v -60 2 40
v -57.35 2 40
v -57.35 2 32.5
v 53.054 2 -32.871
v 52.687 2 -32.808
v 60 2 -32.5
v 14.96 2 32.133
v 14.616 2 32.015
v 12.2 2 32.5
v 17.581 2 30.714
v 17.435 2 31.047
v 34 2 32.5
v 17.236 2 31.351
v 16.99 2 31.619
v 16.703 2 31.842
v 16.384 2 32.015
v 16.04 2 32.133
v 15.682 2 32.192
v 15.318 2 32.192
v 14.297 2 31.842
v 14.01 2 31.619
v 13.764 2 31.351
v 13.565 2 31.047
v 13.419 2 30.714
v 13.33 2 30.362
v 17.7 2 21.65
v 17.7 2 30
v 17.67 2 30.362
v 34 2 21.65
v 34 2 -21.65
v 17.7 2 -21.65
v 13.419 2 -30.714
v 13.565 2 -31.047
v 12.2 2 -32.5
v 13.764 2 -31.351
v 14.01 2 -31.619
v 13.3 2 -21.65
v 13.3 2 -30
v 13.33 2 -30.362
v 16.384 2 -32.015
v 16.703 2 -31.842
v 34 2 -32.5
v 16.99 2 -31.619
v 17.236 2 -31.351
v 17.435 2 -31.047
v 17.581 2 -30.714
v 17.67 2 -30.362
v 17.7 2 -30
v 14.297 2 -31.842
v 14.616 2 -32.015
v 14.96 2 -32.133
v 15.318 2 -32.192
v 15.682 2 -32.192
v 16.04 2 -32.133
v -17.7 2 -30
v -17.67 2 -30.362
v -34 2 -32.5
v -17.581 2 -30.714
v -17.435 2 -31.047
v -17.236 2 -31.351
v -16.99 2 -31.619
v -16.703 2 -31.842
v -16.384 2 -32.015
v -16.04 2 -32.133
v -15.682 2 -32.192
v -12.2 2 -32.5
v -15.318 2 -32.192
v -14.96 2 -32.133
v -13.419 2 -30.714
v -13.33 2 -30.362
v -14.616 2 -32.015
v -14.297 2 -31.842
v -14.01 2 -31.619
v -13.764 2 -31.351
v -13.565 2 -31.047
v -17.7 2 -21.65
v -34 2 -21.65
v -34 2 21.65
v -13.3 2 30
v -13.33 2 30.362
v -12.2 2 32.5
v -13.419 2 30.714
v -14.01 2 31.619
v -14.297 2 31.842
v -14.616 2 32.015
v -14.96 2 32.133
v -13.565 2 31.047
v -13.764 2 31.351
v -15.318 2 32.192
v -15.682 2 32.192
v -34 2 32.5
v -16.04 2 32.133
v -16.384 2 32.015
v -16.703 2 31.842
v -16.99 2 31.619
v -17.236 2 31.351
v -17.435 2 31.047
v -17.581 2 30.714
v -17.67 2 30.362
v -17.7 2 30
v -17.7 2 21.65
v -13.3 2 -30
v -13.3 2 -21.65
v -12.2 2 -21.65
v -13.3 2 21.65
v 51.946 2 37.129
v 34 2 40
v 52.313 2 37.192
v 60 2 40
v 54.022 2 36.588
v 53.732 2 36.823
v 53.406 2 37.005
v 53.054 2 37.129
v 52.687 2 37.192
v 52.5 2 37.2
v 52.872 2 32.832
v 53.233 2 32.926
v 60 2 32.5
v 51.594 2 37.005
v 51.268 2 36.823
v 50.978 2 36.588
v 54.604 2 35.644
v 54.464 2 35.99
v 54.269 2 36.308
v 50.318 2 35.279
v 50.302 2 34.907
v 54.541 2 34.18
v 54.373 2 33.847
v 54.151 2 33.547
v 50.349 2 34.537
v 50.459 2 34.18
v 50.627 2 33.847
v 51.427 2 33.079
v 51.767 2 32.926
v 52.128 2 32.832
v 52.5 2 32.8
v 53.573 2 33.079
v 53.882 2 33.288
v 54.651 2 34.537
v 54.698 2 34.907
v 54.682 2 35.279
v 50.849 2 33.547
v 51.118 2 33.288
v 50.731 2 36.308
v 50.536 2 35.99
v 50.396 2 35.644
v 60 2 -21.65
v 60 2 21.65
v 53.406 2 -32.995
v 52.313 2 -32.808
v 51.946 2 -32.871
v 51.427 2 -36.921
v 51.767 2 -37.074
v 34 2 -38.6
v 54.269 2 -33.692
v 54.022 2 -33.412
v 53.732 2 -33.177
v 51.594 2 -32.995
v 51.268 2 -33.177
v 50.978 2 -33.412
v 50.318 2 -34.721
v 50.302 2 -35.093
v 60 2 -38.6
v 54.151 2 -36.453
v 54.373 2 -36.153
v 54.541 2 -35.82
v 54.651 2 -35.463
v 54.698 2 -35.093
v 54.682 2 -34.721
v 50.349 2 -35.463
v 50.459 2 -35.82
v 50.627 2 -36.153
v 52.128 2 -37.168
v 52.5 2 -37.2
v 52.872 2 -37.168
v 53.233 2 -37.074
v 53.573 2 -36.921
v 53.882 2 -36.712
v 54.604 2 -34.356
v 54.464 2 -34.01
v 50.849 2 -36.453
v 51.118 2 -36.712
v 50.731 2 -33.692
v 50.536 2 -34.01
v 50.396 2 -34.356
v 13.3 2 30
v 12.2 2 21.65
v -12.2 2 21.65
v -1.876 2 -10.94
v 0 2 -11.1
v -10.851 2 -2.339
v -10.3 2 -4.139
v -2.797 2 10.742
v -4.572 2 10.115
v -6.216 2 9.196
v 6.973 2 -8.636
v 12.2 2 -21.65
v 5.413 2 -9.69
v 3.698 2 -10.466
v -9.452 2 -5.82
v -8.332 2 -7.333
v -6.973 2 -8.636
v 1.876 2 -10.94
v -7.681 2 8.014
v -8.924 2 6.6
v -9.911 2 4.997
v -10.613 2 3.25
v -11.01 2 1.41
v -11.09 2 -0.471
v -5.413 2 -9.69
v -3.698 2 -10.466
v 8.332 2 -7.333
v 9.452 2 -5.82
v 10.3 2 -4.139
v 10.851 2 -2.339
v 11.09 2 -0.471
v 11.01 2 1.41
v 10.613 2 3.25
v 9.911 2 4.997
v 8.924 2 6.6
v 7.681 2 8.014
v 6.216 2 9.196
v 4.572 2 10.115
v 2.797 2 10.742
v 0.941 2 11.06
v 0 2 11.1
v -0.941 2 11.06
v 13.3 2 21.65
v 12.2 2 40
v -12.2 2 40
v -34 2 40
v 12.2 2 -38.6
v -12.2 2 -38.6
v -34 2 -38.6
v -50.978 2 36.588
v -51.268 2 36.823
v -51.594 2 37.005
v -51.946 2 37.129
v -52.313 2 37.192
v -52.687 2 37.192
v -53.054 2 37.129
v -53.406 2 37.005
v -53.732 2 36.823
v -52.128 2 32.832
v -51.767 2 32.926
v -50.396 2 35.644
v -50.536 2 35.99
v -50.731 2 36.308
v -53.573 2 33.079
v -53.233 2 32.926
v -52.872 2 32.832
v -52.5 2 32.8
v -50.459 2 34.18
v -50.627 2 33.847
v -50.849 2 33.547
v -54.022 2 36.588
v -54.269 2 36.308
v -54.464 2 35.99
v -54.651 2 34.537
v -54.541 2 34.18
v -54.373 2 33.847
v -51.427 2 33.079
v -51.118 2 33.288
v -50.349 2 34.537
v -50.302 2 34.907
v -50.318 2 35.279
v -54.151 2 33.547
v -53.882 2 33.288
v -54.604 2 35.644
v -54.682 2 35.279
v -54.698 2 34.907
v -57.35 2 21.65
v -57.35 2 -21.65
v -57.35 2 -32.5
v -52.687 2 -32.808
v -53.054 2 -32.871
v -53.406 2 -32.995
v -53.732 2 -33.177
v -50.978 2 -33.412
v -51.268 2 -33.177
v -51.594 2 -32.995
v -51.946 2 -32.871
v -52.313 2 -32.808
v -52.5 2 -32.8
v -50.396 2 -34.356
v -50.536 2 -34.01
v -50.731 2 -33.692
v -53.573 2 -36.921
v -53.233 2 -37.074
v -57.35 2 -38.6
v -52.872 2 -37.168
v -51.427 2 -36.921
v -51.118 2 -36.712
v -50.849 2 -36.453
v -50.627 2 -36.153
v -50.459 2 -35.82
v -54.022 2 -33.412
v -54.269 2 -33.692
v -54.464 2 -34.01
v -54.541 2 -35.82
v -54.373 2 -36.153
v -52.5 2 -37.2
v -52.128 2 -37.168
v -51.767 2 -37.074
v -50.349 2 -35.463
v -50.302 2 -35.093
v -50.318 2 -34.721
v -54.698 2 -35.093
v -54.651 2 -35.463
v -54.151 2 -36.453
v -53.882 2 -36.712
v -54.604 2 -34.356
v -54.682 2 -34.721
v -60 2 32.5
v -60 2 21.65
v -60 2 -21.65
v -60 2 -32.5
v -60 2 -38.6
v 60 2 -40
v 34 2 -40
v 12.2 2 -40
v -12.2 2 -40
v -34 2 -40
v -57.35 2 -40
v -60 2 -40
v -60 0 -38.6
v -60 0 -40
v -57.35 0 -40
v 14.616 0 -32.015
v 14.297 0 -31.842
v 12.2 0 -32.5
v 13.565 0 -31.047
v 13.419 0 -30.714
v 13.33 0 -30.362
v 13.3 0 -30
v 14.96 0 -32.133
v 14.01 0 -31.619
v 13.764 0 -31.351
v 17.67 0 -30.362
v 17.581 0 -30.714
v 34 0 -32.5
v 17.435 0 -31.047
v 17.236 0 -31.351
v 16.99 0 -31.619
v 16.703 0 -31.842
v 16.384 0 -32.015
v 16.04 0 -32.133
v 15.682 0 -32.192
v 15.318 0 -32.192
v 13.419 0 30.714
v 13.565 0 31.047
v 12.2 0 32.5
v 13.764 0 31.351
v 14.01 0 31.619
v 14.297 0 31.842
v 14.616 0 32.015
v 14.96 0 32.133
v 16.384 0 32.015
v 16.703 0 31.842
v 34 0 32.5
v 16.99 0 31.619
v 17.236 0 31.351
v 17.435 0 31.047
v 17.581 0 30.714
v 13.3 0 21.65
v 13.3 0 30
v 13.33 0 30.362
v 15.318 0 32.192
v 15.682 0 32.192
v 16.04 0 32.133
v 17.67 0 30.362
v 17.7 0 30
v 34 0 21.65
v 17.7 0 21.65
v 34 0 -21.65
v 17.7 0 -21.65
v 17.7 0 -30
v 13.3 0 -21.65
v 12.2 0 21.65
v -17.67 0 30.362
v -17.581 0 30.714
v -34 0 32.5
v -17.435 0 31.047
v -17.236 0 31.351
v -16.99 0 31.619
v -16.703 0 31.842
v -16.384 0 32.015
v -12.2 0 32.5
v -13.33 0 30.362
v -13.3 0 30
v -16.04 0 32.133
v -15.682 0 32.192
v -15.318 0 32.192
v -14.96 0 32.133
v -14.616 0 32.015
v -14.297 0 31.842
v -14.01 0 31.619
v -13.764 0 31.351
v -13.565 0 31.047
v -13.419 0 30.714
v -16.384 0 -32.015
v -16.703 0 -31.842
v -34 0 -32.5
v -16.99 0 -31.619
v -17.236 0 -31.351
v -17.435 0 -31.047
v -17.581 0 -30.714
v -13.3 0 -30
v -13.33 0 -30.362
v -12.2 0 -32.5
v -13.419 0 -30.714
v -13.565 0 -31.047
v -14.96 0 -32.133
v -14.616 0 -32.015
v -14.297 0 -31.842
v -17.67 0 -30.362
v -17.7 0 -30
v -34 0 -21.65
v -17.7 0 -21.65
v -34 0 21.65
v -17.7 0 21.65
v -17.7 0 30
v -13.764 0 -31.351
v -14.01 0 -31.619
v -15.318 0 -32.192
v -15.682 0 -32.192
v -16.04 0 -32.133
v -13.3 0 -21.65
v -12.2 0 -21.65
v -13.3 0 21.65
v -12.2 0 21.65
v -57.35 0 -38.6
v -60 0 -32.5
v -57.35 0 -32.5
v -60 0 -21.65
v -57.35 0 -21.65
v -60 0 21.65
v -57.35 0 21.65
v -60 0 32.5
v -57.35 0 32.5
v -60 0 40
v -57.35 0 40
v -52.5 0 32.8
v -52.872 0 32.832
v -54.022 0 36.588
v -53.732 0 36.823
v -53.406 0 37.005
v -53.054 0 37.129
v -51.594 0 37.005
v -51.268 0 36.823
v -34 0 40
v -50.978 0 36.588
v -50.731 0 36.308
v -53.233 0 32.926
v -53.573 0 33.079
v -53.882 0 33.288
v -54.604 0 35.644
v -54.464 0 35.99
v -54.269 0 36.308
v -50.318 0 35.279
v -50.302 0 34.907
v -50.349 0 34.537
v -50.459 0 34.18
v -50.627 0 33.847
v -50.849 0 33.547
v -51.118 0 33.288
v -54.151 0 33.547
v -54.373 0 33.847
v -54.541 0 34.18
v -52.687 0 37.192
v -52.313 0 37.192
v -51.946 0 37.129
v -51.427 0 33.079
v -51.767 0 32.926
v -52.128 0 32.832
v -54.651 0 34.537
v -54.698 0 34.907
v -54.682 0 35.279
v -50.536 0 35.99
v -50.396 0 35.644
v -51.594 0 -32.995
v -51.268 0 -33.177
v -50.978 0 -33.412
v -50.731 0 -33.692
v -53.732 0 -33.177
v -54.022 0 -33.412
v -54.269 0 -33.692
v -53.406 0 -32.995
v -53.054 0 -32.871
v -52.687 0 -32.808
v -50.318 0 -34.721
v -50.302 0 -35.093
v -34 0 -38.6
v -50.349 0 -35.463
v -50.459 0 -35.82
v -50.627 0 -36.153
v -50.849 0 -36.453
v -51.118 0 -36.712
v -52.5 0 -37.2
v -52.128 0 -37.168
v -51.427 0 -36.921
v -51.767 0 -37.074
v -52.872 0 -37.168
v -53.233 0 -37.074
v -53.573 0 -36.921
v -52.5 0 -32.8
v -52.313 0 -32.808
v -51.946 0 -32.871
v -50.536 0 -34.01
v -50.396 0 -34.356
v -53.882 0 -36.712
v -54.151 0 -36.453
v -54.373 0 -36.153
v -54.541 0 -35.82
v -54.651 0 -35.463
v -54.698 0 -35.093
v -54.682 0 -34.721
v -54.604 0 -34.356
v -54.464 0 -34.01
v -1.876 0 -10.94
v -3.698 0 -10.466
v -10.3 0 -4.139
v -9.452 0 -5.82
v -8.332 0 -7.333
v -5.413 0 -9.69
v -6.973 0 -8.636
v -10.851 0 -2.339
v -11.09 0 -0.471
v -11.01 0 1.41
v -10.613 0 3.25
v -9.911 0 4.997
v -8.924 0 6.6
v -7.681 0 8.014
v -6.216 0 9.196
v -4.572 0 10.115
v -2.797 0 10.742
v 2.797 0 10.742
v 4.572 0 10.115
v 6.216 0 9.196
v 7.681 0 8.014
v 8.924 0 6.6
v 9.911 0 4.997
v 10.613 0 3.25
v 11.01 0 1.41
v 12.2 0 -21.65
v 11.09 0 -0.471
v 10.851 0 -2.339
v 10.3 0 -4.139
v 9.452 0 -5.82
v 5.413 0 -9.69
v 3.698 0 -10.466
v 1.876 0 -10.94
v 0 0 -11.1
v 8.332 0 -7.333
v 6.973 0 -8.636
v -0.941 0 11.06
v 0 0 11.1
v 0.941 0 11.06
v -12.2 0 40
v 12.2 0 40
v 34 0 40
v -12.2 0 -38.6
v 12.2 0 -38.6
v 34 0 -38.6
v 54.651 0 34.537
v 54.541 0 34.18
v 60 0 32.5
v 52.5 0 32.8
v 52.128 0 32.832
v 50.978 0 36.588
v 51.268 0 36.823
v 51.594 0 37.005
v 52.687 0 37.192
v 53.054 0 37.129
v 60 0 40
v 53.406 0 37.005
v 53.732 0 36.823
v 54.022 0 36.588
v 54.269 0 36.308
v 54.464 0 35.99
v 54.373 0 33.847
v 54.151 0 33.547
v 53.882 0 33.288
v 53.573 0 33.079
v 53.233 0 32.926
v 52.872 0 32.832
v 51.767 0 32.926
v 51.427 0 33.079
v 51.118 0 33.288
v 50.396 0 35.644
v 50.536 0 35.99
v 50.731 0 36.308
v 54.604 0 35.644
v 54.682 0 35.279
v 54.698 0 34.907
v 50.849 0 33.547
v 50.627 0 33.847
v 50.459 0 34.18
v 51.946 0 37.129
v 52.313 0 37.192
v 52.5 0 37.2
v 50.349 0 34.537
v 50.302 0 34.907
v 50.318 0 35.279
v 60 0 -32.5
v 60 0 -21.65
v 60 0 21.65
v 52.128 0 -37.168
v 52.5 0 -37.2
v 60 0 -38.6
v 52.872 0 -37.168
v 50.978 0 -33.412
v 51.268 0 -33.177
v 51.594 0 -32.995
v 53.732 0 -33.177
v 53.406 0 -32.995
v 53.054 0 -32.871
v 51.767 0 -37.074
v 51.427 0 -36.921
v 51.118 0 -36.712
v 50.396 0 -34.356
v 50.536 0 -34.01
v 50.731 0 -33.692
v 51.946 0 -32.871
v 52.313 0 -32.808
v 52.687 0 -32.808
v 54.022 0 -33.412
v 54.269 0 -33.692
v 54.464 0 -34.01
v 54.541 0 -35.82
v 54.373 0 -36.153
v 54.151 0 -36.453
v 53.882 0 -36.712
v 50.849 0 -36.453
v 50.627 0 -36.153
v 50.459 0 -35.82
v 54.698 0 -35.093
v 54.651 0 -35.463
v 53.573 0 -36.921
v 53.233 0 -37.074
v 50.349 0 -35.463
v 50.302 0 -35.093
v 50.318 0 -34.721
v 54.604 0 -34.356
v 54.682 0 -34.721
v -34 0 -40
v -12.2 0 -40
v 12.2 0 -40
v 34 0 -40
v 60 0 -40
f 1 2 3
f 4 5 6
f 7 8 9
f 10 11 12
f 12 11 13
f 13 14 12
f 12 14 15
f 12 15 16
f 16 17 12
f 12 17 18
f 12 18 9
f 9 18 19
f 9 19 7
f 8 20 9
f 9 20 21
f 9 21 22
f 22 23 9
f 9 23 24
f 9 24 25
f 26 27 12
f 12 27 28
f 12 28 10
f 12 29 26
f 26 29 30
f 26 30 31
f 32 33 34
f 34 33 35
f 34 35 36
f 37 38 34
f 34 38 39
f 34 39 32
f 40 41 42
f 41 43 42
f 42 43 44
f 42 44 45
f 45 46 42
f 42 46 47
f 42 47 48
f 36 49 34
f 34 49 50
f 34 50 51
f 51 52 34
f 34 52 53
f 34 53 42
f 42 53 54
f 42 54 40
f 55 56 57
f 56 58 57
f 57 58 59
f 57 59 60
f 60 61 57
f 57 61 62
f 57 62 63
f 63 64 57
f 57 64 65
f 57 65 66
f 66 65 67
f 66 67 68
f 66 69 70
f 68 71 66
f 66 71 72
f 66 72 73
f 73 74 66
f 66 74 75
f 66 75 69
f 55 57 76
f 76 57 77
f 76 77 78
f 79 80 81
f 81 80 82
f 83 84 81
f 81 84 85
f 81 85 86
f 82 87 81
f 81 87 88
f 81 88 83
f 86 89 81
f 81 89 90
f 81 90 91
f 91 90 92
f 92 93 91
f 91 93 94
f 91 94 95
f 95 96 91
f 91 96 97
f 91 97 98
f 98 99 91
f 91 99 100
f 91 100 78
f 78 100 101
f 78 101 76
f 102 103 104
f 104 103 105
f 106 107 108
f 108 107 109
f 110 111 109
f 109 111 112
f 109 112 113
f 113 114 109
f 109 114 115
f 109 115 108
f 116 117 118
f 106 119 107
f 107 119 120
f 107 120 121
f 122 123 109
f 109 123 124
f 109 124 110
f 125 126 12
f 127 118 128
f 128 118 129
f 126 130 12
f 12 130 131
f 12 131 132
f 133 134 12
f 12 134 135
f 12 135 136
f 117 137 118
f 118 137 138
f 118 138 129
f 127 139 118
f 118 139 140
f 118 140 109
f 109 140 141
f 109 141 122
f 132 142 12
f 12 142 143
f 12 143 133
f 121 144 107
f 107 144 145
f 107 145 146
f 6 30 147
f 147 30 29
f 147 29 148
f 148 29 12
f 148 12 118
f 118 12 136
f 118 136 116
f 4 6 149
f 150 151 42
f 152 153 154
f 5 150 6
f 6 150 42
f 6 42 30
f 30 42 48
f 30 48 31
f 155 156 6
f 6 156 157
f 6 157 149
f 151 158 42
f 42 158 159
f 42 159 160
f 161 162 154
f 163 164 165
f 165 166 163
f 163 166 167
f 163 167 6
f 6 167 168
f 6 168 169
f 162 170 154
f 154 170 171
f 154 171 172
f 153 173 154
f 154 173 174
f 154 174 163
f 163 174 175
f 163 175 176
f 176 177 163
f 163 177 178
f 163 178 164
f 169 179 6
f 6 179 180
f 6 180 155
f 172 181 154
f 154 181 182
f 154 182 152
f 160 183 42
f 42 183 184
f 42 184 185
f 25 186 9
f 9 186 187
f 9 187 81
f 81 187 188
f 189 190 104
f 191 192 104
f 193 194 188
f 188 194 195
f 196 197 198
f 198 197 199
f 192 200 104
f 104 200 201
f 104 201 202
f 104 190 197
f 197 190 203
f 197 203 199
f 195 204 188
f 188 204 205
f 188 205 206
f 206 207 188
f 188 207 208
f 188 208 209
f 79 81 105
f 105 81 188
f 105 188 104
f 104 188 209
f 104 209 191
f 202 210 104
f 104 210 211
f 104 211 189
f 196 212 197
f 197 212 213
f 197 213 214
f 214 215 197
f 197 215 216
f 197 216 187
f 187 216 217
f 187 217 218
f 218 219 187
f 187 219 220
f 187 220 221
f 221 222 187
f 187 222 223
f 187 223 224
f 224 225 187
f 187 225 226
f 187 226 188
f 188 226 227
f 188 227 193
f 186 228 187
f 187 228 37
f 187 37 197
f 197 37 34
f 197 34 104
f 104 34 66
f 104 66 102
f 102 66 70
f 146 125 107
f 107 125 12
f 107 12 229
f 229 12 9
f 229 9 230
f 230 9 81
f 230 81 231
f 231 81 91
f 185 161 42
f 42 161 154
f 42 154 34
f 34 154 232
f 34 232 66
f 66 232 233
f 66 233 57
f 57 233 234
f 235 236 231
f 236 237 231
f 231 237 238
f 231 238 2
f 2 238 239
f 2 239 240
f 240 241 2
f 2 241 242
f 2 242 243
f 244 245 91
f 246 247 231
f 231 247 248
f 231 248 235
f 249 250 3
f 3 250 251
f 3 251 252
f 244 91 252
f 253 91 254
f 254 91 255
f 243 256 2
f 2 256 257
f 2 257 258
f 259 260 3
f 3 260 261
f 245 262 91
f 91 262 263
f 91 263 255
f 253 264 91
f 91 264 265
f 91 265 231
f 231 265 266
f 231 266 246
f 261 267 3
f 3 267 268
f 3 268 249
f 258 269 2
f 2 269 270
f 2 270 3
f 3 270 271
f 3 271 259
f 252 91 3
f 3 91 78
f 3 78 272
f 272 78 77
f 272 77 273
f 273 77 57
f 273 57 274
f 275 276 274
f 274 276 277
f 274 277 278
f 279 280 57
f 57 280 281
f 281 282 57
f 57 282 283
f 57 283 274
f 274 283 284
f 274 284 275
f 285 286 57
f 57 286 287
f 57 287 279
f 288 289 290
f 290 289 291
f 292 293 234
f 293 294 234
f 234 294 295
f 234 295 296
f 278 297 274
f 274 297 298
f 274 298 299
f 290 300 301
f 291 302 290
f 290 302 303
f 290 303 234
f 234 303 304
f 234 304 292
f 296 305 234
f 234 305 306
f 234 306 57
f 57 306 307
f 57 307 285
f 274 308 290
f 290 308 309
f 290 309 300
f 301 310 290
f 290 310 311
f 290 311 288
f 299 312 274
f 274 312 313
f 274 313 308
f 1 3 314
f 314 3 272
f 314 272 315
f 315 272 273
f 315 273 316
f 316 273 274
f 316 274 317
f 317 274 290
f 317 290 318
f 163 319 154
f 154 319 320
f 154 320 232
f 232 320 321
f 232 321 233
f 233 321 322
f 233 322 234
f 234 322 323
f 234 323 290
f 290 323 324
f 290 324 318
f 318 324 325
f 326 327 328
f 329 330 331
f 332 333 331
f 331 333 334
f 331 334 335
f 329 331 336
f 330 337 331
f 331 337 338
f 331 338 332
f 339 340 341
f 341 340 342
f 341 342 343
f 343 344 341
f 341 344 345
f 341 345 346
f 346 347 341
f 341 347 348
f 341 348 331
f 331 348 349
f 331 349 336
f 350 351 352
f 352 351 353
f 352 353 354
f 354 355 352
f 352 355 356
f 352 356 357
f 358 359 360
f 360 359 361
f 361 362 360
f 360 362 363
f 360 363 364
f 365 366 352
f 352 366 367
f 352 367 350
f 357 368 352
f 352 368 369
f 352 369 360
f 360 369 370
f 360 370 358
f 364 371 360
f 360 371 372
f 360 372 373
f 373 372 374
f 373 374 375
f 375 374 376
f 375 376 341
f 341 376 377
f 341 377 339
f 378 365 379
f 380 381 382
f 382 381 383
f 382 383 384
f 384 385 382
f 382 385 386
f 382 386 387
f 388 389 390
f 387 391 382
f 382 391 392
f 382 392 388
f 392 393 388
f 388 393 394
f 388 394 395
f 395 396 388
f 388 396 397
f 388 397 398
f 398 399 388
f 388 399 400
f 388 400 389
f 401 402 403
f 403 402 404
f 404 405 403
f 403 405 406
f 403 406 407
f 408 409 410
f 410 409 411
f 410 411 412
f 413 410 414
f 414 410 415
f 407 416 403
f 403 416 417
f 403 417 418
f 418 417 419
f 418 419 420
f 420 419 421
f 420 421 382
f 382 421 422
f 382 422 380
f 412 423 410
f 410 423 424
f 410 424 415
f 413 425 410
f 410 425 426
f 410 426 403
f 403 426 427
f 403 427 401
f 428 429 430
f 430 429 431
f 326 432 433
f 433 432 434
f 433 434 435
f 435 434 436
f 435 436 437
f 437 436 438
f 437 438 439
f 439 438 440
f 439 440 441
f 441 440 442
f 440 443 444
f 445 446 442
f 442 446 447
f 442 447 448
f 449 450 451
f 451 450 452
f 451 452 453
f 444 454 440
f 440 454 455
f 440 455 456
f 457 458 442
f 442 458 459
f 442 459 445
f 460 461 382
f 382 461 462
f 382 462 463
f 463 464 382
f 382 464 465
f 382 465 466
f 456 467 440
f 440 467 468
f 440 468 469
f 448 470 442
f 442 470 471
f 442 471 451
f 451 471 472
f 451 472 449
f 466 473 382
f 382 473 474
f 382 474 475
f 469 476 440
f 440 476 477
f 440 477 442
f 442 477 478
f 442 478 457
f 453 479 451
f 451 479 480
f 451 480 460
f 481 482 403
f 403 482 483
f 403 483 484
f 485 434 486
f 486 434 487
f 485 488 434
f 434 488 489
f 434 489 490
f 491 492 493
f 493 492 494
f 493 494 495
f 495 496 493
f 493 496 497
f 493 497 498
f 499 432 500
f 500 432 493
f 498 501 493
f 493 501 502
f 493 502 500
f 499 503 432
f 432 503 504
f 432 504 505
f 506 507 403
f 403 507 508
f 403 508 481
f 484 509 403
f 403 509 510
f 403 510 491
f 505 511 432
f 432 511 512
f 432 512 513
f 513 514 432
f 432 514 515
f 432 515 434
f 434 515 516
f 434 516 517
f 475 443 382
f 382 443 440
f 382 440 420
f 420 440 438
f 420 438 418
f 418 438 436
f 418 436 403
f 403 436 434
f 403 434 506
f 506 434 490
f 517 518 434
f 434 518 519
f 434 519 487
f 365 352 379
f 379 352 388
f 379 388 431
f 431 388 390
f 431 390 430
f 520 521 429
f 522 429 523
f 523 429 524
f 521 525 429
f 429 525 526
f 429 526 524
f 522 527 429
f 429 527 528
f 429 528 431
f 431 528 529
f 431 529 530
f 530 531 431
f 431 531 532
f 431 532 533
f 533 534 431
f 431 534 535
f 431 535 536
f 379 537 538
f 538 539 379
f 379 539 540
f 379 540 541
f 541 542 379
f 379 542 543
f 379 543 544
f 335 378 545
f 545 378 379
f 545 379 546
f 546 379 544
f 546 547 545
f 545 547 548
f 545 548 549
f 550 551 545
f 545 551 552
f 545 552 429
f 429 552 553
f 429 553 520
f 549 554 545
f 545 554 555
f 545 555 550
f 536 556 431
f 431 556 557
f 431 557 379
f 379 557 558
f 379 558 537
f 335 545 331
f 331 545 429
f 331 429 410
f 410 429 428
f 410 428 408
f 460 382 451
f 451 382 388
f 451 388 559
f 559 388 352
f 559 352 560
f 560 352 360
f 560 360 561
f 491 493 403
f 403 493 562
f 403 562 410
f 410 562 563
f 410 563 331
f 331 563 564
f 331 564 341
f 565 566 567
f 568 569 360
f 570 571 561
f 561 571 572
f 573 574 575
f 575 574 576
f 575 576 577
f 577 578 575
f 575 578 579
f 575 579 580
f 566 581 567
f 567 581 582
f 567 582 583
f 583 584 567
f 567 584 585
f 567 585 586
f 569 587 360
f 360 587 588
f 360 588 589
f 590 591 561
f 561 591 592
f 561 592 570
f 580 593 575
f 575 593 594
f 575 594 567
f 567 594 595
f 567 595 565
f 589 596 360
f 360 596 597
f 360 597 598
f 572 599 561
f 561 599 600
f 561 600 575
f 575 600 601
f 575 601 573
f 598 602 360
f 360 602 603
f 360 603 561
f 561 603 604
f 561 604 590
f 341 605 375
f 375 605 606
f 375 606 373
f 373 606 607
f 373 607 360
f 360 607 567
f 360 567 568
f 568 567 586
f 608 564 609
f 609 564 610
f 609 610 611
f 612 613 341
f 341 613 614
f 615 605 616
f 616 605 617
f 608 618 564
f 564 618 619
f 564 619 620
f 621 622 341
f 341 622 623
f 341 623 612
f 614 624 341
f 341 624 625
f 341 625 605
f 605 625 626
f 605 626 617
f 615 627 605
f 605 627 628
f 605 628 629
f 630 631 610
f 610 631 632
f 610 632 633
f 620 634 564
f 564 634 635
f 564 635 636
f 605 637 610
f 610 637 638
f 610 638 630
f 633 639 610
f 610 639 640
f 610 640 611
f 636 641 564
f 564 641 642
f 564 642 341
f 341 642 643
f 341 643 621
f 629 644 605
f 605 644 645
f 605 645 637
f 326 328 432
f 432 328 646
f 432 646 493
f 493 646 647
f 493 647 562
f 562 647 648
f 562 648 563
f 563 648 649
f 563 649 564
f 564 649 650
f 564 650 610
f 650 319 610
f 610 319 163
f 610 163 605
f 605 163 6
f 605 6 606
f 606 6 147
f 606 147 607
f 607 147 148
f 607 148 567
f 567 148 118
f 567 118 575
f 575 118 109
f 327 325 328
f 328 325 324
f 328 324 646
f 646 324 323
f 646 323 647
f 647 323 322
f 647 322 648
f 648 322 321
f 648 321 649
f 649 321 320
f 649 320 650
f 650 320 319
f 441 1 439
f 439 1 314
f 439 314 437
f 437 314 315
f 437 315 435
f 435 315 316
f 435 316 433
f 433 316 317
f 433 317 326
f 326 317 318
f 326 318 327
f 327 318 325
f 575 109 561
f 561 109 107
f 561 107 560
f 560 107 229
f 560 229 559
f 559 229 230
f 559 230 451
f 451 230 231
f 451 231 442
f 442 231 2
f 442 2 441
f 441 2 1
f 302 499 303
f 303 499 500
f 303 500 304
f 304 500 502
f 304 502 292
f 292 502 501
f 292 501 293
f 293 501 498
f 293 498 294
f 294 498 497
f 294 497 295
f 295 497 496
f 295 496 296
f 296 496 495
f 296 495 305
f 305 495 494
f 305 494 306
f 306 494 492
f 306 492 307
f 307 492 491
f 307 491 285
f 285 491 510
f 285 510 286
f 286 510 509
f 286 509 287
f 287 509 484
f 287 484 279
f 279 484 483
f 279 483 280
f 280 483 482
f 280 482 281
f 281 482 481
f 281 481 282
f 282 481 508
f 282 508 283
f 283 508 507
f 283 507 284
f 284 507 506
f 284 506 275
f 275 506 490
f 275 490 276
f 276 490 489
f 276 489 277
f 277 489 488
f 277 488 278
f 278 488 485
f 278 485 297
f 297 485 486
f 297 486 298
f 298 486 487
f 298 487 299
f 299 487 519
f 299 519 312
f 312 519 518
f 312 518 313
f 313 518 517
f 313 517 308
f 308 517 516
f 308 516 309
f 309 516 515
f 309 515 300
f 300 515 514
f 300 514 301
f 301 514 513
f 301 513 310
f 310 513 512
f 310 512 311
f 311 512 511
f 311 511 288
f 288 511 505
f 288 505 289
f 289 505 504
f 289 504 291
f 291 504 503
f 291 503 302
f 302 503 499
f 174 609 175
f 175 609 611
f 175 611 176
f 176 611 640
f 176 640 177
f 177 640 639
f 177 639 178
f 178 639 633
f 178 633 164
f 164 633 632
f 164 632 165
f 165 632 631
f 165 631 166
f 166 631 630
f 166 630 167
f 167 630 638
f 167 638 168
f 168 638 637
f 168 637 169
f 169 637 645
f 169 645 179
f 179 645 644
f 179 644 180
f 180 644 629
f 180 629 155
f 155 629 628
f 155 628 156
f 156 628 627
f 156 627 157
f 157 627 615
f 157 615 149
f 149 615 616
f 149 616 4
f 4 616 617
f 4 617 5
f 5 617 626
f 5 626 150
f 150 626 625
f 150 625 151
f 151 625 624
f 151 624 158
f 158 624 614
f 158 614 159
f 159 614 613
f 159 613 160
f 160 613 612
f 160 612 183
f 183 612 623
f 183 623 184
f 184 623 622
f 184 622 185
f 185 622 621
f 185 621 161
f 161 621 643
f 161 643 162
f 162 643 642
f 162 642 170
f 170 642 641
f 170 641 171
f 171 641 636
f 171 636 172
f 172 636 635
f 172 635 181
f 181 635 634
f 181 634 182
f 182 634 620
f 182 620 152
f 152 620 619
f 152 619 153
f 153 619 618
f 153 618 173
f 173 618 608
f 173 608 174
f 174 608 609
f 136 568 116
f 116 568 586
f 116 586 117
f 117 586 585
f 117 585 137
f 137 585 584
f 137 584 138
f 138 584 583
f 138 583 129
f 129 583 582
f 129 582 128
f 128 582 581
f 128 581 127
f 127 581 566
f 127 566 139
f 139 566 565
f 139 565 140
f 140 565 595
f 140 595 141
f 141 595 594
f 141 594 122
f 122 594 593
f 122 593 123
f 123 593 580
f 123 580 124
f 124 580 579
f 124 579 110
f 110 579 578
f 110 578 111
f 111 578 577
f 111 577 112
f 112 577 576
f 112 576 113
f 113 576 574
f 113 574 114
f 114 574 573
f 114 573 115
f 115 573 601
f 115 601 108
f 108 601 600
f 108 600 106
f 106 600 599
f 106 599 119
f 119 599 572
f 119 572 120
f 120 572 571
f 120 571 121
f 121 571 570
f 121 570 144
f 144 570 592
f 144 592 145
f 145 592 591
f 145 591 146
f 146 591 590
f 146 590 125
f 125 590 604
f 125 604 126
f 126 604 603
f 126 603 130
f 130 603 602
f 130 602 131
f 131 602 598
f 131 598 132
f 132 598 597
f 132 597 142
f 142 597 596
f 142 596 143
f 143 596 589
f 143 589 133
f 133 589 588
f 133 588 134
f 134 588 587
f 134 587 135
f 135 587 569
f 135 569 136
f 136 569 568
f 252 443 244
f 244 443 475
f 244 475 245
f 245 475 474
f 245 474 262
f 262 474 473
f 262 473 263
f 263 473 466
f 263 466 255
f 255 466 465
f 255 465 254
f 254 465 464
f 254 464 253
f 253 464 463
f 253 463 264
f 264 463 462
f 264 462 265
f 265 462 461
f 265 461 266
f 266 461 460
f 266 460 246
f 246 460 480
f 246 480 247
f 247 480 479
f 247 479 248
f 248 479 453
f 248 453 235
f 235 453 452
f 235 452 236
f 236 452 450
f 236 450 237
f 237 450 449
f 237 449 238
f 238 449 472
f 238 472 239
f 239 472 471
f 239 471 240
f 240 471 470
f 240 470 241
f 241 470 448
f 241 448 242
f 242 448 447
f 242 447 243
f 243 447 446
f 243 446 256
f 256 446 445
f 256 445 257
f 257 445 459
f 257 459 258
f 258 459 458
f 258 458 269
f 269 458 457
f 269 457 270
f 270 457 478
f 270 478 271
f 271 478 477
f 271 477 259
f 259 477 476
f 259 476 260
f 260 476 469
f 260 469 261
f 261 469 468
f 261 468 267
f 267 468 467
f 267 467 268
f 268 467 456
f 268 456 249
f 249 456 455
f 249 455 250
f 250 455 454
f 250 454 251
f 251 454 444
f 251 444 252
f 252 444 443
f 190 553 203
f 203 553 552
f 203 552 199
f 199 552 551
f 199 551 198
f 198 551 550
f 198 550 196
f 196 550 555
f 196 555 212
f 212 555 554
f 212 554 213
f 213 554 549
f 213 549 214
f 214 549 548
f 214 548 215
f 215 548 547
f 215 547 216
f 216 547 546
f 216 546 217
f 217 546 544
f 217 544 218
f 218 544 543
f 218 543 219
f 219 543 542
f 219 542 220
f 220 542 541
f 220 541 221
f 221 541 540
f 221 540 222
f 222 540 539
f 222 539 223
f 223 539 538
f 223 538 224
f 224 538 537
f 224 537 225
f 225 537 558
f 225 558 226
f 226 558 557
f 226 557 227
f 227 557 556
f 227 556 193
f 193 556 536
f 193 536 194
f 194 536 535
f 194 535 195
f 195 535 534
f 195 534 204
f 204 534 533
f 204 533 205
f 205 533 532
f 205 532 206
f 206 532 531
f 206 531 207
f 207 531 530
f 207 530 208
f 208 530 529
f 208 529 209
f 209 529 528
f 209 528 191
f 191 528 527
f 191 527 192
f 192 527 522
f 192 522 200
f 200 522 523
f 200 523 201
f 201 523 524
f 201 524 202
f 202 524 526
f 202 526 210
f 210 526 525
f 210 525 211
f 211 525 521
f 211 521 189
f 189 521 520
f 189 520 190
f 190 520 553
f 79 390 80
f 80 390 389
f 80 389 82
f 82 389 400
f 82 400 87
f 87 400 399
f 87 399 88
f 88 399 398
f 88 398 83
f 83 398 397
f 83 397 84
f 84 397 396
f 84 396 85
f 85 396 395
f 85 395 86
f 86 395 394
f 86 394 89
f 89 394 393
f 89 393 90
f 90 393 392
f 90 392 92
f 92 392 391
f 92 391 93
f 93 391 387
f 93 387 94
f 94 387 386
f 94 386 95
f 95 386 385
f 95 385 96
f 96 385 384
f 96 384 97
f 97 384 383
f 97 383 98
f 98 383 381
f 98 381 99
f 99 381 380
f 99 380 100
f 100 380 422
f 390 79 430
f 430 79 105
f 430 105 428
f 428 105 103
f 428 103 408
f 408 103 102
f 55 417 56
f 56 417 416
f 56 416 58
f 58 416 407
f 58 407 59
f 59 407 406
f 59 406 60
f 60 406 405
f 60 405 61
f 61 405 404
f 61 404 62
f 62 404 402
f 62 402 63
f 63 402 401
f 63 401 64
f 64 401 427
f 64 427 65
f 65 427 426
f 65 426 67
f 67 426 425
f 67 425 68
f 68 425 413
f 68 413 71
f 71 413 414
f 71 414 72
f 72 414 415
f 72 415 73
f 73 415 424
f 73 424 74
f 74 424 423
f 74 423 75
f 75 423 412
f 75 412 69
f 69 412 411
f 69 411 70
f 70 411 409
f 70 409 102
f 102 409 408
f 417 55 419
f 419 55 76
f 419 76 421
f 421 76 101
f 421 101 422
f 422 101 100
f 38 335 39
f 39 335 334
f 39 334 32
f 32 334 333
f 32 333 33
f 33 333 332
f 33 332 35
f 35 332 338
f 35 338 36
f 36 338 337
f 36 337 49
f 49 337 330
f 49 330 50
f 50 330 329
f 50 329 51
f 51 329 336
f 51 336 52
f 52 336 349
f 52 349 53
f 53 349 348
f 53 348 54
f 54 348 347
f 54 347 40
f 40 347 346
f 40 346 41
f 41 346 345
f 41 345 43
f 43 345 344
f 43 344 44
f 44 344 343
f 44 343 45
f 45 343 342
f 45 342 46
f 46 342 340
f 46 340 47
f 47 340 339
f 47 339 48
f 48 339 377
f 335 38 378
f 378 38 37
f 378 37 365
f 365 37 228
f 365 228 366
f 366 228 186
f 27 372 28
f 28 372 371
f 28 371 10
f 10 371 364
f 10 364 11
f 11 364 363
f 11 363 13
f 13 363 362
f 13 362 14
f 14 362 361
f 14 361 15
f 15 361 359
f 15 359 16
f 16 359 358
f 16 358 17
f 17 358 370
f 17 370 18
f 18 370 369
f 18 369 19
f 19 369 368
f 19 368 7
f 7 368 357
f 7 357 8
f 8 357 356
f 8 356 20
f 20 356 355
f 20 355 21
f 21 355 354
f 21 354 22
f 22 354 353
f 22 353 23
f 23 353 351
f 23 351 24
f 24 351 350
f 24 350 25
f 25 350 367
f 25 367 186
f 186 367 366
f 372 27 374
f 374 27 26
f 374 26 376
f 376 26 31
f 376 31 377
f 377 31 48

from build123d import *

# Parameters (mm, degrees)
SKETCH1_W           = 120
SKETCH1_H           = 80
SKETCH1_R           = 2.2
SKETCH1_R_2         = 11.1
BOSS_EXTRUDE1_DEPTH = 2


with BuildPart() as part:
    # Sketch1 → Boss-Extrude1 (new body)
    with BuildSketch(Plane(origin=(0, 0, 0), x_dir=(1, 0, 0), z_dir=(0, 1, 0))):
        Rectangle(SKETCH1_W, SKETCH1_H)
        with Locations(Location((-52.5, 35, 0), (0, 0, 270))):
            Circle(SKETCH1_R, mode=Mode.SUBTRACT)
        with Locations(Location((52.5, 35, 0), (0, 0, 90))):
            Circle(SKETCH1_R, mode=Mode.SUBTRACT)
        with Locations(Location((52.5, -35, 0), (0, 0, 270))):
            Circle(SKETCH1_R, mode=Mode.SUBTRACT)
        with Locations(Location((-52.5, -35, 0), (0, 0, 90))):
            Circle(SKETCH1_R, mode=Mode.SUBTRACT)
        with Locations(Location((0, 0, 0), (0, 0, 270))):
            Circle(SKETCH1_R_2, mode=Mode.SUBTRACT)
        with BuildLine():
            Line((-17.7, -30), (-17.7, 30))
            ThreePointArc((-17.7, 30), (-15.5, 32.2), (-13.3, 30))
            Line((-13.3, 30), (-13.3, -30))
            ThreePointArc((-13.3, -30), (-15.5, -32.2), (-17.7, -30))
        make_face(mode=Mode.SUBTRACT)
        with BuildLine():
            Line((13.3, 30), (13.3, -30))
            ThreePointArc((13.3, -30), (15.5, -32.2), (17.7, -30))
            Line((17.7, -30), (17.7, 30))
            ThreePointArc((17.7, 30), (15.5, 32.2), (13.3, 30))
        make_face(mode=Mode.SUBTRACT)
    extrude(amount=BOSS_EXTRUDE1_DEPTH)


solid = part.part
